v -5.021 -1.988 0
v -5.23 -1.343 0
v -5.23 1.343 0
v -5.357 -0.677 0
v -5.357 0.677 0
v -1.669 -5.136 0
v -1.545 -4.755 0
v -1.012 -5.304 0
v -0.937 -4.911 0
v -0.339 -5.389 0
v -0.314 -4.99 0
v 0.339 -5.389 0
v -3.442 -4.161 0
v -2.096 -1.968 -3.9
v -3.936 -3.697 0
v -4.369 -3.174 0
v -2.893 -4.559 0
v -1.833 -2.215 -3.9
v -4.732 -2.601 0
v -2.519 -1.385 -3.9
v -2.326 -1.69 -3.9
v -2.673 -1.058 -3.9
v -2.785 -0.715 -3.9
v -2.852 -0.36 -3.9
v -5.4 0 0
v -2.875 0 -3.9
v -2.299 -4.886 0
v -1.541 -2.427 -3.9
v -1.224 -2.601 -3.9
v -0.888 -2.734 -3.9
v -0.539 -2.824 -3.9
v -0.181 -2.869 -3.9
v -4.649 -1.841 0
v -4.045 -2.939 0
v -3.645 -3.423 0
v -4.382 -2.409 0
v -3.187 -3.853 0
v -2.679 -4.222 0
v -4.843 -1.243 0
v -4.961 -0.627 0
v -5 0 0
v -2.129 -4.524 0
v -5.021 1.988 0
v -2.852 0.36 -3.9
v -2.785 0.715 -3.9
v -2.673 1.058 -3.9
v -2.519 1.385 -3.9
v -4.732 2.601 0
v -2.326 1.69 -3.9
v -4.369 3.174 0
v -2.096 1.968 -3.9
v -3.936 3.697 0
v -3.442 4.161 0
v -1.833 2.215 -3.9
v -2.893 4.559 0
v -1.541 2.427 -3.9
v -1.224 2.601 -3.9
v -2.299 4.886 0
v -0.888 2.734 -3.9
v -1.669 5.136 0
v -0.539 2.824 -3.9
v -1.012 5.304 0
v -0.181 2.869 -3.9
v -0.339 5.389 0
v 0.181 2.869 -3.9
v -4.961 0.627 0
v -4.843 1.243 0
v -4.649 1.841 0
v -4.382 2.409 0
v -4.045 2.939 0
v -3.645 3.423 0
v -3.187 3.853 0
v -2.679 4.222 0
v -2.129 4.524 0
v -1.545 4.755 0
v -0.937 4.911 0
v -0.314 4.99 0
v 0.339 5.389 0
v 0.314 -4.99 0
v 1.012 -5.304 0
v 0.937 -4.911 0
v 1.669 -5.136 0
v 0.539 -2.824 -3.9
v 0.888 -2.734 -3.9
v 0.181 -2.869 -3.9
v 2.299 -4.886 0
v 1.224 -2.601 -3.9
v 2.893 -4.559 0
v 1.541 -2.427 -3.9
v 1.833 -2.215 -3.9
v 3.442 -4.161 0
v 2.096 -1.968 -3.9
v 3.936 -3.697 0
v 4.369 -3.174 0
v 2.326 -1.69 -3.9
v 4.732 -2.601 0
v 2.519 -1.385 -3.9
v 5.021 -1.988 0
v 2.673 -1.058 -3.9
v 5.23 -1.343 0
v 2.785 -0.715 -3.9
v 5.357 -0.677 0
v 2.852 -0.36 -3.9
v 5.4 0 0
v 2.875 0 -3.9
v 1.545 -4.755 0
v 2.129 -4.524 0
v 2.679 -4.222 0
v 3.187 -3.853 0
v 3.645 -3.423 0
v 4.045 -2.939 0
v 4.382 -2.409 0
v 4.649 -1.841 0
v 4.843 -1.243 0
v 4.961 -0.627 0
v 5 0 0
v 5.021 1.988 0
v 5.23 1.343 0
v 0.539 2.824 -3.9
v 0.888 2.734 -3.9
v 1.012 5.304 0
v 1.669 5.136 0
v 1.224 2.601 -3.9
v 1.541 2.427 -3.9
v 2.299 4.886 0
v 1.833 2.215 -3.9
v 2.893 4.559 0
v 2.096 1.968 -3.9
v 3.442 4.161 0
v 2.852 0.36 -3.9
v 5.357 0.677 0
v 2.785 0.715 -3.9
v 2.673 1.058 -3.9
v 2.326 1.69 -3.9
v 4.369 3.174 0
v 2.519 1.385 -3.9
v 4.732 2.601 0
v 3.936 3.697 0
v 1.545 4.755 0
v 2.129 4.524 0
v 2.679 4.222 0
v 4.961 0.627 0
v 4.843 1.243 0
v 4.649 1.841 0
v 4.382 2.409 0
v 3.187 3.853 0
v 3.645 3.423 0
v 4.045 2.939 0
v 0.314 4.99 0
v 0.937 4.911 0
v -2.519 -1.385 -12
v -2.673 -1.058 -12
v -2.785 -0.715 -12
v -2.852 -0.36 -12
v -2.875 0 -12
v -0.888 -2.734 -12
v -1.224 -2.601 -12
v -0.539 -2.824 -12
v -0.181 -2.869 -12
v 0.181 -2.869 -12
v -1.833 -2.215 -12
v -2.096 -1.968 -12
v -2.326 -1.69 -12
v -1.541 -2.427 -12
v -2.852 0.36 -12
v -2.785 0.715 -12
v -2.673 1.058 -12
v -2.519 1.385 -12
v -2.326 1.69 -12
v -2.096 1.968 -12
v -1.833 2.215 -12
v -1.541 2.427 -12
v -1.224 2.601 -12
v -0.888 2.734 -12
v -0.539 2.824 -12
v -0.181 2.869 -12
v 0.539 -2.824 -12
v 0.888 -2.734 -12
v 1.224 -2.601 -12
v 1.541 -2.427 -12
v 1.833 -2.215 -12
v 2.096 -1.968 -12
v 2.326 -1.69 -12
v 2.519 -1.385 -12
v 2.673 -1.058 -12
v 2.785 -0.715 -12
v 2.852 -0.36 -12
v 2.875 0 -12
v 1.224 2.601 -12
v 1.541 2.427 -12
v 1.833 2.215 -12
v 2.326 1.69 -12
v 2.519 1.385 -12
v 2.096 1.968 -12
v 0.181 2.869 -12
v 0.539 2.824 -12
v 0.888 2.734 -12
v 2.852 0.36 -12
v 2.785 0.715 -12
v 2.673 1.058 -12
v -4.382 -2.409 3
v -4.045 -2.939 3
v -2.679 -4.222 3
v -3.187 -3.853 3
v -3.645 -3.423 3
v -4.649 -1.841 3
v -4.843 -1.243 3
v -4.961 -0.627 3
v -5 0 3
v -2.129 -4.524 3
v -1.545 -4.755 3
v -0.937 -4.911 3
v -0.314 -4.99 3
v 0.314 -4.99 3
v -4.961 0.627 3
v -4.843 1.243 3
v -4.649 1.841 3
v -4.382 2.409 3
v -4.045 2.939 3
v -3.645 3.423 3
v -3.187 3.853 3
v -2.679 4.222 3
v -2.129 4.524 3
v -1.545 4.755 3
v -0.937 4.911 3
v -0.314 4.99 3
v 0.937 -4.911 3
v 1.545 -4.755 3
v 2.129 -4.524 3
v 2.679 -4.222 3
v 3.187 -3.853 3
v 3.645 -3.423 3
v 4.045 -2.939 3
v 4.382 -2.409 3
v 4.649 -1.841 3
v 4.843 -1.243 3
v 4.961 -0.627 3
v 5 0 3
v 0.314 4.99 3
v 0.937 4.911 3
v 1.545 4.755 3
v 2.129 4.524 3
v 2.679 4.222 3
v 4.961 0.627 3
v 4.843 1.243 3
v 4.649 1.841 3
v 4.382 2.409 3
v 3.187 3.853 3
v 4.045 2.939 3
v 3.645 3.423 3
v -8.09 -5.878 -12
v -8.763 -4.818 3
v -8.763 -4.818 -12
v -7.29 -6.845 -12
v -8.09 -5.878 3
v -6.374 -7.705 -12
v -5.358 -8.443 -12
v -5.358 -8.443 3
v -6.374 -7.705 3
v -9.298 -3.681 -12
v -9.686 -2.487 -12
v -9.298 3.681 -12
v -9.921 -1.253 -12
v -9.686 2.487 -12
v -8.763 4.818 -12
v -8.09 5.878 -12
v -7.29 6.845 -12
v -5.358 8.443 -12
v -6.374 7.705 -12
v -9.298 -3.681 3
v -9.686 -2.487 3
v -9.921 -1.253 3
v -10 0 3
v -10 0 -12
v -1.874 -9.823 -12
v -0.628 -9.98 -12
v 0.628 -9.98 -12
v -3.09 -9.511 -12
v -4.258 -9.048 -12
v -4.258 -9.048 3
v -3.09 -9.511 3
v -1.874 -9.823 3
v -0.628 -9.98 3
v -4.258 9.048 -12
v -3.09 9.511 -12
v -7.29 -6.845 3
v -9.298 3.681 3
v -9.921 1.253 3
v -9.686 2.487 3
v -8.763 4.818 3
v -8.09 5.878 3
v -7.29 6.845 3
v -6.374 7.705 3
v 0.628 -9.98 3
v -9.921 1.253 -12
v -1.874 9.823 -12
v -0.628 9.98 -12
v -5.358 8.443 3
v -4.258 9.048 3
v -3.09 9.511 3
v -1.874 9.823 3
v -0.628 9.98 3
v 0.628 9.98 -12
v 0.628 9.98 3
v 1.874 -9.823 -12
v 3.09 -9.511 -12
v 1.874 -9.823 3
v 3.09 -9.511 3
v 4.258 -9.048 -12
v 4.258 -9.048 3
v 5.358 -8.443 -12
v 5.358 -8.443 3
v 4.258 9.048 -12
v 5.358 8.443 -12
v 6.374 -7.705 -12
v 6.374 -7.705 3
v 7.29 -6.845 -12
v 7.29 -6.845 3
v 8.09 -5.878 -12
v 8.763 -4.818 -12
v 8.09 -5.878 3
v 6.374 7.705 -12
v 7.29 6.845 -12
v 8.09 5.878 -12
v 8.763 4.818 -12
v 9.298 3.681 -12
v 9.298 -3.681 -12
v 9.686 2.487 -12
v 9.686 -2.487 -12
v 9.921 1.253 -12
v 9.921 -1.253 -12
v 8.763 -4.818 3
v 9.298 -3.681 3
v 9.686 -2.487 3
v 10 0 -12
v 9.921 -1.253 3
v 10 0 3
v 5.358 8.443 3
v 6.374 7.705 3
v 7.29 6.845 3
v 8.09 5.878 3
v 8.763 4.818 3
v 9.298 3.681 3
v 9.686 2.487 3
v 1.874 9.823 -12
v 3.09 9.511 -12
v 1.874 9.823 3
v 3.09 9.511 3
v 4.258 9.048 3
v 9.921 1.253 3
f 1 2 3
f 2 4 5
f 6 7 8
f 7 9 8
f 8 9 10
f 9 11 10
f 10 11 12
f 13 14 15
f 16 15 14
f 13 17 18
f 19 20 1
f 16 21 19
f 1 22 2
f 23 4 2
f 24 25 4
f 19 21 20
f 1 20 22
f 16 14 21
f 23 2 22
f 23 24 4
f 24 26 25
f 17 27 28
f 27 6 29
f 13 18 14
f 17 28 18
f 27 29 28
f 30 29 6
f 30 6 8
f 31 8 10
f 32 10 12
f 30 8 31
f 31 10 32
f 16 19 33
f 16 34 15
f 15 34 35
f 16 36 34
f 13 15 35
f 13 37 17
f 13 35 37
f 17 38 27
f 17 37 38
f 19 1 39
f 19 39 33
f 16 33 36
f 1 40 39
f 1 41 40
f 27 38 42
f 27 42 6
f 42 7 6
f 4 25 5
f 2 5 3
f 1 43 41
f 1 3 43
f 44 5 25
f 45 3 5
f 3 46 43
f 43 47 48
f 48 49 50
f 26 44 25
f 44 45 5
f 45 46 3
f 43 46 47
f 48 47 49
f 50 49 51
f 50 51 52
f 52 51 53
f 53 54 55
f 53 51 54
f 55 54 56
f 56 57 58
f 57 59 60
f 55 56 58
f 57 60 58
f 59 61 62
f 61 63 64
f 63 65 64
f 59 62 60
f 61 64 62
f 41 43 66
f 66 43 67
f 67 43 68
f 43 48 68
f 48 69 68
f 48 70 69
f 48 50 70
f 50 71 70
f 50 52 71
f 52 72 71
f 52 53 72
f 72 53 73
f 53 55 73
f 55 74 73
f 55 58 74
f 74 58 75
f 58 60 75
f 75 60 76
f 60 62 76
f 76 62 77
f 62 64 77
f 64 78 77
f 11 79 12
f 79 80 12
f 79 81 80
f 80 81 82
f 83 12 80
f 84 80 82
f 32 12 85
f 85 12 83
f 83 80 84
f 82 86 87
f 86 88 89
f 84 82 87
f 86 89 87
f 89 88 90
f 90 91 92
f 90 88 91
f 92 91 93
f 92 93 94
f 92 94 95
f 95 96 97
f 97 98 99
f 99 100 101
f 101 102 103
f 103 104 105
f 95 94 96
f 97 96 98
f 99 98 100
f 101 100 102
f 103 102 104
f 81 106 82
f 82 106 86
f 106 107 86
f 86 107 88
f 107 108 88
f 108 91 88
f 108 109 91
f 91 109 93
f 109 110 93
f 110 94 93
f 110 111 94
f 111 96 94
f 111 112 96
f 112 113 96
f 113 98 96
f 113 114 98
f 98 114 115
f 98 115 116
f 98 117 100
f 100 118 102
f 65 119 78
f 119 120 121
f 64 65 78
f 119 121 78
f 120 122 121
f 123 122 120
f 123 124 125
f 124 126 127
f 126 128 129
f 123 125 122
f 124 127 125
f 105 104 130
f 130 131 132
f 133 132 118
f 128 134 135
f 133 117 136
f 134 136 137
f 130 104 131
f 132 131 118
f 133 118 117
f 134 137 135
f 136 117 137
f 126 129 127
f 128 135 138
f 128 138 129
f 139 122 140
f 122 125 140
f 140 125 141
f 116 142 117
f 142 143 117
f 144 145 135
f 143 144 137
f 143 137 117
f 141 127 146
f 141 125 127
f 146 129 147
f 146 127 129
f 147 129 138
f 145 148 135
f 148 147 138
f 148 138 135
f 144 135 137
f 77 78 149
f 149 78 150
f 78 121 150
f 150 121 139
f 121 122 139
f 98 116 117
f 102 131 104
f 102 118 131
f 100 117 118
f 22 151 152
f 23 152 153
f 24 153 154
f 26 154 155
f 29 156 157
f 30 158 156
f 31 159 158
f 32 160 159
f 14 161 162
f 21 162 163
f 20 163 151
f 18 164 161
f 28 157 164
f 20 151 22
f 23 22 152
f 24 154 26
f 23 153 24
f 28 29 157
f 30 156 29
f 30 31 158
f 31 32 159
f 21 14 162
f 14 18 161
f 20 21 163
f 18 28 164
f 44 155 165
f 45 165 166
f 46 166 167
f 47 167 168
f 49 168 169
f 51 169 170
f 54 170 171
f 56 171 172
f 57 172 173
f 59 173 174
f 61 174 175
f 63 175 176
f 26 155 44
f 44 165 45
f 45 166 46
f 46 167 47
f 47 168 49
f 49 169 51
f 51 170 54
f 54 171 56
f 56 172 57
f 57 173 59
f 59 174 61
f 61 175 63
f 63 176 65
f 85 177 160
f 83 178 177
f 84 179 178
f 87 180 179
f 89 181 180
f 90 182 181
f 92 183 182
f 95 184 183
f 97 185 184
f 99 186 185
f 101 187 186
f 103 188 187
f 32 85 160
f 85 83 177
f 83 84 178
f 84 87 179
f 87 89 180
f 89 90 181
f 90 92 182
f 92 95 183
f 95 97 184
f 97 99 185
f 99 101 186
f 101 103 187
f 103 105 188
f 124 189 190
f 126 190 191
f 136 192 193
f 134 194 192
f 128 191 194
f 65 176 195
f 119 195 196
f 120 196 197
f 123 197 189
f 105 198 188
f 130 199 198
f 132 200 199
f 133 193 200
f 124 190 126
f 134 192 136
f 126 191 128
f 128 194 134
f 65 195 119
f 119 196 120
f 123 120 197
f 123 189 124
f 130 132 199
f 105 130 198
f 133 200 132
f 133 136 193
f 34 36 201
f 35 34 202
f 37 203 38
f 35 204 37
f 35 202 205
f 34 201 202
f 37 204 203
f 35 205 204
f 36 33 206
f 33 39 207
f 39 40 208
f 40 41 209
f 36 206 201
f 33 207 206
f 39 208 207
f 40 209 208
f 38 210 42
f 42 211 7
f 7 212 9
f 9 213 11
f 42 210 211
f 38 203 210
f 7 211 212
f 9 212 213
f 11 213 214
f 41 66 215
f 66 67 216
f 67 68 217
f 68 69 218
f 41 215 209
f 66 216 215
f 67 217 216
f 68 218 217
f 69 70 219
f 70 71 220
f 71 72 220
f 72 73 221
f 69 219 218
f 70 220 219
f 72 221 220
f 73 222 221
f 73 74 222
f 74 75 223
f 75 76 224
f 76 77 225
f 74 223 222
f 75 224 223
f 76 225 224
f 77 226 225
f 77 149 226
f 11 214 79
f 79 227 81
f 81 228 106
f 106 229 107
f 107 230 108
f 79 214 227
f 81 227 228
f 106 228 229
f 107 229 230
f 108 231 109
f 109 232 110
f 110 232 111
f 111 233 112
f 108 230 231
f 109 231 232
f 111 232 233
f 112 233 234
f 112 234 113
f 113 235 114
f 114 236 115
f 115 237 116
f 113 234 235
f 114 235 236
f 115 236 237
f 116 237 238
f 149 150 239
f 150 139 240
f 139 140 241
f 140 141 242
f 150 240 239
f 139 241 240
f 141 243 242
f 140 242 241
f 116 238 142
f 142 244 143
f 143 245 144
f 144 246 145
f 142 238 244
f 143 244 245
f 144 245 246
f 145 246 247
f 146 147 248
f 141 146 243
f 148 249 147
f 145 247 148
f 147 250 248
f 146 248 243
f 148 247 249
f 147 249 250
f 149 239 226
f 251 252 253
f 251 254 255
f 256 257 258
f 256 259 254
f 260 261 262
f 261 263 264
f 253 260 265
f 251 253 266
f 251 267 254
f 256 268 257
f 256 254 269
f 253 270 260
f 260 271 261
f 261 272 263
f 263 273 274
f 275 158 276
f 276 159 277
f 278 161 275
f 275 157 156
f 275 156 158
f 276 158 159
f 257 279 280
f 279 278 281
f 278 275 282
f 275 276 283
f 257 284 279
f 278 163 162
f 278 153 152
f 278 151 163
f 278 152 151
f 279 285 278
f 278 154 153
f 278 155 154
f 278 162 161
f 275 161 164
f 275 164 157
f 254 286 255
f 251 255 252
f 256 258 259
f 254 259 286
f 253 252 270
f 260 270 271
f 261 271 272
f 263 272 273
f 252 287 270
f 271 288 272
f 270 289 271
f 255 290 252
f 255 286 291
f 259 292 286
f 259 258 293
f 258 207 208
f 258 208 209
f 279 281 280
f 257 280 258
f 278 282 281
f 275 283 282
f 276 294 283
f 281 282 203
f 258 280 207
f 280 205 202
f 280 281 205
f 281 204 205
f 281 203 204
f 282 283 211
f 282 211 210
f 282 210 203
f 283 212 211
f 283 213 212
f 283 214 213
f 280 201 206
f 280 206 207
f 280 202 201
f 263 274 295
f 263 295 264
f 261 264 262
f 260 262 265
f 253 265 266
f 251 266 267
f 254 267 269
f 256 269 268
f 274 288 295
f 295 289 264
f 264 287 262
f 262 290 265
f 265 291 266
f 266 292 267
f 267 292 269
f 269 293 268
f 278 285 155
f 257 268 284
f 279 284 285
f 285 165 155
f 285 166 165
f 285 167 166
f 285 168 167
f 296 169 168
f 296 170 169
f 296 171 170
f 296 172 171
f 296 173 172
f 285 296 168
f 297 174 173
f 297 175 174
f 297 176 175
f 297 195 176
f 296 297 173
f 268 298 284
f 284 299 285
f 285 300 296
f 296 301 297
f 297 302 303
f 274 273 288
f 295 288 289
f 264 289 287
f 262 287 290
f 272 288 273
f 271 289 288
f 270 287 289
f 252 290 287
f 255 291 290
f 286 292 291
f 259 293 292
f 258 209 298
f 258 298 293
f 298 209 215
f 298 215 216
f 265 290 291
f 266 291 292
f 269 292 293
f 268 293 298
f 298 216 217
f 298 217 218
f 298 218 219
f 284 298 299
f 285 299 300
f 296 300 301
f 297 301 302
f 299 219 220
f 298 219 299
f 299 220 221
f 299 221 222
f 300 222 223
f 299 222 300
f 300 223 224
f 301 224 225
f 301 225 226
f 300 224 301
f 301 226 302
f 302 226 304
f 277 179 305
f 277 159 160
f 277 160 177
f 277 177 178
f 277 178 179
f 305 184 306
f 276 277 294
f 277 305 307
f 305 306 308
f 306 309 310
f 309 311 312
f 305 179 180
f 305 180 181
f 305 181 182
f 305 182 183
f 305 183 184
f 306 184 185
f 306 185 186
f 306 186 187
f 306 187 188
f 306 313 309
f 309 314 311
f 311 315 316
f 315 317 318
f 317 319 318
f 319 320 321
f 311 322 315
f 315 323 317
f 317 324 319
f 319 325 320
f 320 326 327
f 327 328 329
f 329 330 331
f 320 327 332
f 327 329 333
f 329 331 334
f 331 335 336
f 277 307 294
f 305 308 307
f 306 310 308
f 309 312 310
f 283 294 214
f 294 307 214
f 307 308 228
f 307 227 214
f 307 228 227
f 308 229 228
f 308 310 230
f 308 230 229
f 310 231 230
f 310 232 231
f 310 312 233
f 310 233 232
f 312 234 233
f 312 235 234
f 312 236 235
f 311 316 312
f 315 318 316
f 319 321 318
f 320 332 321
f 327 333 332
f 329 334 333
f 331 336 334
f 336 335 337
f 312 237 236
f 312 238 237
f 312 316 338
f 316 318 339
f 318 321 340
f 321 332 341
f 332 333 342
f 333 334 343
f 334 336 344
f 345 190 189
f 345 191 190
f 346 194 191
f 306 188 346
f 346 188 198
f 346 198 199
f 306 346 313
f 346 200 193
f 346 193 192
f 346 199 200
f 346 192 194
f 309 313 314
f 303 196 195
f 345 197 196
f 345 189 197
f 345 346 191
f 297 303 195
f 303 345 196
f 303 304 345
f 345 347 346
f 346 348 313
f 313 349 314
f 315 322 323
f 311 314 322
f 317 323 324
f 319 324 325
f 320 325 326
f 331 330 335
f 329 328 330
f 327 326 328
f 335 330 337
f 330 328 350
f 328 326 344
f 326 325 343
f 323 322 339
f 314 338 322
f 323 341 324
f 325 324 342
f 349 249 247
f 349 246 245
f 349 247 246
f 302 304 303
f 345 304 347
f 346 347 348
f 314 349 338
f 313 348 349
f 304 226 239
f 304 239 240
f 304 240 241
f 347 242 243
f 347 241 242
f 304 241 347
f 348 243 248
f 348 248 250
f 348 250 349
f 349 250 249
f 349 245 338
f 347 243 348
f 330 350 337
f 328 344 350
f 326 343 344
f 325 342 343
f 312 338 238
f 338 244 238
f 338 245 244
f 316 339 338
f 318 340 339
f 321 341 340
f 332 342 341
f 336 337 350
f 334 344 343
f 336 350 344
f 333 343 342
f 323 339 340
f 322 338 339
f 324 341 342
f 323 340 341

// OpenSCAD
$fn = 50;

difference() {
	union() {
		translate(v = [0, 0, -12.0]) {
			cylinder(h = 15, r = 10.0);
		}
	}
	union() {
		translate(v = [0, 0, 0]) {
			rotate(a = [0, 0, 0]) {
				difference() {
					union() {
						translate(v = [0, 0, -15.0]) {
							cylinder(h = 15, r = 2.6);
						}
						translate(v = [0, 0, -3.9]) {
							cylinder(h = 3.9, r1 = 2.875, r2 = 5.4);
						}
						translate(v = [0, 0, -15.0]) {
							cylinder(h = 15, r = 2.875);
						}
						translate(v = [0, 0, -15.0]) {
							cylinder(h = 15, r = 2.6);
						}
					}
					union();
				}
			}
		}
		#cylinder(h = 3, r = 5.0);
	}
}
